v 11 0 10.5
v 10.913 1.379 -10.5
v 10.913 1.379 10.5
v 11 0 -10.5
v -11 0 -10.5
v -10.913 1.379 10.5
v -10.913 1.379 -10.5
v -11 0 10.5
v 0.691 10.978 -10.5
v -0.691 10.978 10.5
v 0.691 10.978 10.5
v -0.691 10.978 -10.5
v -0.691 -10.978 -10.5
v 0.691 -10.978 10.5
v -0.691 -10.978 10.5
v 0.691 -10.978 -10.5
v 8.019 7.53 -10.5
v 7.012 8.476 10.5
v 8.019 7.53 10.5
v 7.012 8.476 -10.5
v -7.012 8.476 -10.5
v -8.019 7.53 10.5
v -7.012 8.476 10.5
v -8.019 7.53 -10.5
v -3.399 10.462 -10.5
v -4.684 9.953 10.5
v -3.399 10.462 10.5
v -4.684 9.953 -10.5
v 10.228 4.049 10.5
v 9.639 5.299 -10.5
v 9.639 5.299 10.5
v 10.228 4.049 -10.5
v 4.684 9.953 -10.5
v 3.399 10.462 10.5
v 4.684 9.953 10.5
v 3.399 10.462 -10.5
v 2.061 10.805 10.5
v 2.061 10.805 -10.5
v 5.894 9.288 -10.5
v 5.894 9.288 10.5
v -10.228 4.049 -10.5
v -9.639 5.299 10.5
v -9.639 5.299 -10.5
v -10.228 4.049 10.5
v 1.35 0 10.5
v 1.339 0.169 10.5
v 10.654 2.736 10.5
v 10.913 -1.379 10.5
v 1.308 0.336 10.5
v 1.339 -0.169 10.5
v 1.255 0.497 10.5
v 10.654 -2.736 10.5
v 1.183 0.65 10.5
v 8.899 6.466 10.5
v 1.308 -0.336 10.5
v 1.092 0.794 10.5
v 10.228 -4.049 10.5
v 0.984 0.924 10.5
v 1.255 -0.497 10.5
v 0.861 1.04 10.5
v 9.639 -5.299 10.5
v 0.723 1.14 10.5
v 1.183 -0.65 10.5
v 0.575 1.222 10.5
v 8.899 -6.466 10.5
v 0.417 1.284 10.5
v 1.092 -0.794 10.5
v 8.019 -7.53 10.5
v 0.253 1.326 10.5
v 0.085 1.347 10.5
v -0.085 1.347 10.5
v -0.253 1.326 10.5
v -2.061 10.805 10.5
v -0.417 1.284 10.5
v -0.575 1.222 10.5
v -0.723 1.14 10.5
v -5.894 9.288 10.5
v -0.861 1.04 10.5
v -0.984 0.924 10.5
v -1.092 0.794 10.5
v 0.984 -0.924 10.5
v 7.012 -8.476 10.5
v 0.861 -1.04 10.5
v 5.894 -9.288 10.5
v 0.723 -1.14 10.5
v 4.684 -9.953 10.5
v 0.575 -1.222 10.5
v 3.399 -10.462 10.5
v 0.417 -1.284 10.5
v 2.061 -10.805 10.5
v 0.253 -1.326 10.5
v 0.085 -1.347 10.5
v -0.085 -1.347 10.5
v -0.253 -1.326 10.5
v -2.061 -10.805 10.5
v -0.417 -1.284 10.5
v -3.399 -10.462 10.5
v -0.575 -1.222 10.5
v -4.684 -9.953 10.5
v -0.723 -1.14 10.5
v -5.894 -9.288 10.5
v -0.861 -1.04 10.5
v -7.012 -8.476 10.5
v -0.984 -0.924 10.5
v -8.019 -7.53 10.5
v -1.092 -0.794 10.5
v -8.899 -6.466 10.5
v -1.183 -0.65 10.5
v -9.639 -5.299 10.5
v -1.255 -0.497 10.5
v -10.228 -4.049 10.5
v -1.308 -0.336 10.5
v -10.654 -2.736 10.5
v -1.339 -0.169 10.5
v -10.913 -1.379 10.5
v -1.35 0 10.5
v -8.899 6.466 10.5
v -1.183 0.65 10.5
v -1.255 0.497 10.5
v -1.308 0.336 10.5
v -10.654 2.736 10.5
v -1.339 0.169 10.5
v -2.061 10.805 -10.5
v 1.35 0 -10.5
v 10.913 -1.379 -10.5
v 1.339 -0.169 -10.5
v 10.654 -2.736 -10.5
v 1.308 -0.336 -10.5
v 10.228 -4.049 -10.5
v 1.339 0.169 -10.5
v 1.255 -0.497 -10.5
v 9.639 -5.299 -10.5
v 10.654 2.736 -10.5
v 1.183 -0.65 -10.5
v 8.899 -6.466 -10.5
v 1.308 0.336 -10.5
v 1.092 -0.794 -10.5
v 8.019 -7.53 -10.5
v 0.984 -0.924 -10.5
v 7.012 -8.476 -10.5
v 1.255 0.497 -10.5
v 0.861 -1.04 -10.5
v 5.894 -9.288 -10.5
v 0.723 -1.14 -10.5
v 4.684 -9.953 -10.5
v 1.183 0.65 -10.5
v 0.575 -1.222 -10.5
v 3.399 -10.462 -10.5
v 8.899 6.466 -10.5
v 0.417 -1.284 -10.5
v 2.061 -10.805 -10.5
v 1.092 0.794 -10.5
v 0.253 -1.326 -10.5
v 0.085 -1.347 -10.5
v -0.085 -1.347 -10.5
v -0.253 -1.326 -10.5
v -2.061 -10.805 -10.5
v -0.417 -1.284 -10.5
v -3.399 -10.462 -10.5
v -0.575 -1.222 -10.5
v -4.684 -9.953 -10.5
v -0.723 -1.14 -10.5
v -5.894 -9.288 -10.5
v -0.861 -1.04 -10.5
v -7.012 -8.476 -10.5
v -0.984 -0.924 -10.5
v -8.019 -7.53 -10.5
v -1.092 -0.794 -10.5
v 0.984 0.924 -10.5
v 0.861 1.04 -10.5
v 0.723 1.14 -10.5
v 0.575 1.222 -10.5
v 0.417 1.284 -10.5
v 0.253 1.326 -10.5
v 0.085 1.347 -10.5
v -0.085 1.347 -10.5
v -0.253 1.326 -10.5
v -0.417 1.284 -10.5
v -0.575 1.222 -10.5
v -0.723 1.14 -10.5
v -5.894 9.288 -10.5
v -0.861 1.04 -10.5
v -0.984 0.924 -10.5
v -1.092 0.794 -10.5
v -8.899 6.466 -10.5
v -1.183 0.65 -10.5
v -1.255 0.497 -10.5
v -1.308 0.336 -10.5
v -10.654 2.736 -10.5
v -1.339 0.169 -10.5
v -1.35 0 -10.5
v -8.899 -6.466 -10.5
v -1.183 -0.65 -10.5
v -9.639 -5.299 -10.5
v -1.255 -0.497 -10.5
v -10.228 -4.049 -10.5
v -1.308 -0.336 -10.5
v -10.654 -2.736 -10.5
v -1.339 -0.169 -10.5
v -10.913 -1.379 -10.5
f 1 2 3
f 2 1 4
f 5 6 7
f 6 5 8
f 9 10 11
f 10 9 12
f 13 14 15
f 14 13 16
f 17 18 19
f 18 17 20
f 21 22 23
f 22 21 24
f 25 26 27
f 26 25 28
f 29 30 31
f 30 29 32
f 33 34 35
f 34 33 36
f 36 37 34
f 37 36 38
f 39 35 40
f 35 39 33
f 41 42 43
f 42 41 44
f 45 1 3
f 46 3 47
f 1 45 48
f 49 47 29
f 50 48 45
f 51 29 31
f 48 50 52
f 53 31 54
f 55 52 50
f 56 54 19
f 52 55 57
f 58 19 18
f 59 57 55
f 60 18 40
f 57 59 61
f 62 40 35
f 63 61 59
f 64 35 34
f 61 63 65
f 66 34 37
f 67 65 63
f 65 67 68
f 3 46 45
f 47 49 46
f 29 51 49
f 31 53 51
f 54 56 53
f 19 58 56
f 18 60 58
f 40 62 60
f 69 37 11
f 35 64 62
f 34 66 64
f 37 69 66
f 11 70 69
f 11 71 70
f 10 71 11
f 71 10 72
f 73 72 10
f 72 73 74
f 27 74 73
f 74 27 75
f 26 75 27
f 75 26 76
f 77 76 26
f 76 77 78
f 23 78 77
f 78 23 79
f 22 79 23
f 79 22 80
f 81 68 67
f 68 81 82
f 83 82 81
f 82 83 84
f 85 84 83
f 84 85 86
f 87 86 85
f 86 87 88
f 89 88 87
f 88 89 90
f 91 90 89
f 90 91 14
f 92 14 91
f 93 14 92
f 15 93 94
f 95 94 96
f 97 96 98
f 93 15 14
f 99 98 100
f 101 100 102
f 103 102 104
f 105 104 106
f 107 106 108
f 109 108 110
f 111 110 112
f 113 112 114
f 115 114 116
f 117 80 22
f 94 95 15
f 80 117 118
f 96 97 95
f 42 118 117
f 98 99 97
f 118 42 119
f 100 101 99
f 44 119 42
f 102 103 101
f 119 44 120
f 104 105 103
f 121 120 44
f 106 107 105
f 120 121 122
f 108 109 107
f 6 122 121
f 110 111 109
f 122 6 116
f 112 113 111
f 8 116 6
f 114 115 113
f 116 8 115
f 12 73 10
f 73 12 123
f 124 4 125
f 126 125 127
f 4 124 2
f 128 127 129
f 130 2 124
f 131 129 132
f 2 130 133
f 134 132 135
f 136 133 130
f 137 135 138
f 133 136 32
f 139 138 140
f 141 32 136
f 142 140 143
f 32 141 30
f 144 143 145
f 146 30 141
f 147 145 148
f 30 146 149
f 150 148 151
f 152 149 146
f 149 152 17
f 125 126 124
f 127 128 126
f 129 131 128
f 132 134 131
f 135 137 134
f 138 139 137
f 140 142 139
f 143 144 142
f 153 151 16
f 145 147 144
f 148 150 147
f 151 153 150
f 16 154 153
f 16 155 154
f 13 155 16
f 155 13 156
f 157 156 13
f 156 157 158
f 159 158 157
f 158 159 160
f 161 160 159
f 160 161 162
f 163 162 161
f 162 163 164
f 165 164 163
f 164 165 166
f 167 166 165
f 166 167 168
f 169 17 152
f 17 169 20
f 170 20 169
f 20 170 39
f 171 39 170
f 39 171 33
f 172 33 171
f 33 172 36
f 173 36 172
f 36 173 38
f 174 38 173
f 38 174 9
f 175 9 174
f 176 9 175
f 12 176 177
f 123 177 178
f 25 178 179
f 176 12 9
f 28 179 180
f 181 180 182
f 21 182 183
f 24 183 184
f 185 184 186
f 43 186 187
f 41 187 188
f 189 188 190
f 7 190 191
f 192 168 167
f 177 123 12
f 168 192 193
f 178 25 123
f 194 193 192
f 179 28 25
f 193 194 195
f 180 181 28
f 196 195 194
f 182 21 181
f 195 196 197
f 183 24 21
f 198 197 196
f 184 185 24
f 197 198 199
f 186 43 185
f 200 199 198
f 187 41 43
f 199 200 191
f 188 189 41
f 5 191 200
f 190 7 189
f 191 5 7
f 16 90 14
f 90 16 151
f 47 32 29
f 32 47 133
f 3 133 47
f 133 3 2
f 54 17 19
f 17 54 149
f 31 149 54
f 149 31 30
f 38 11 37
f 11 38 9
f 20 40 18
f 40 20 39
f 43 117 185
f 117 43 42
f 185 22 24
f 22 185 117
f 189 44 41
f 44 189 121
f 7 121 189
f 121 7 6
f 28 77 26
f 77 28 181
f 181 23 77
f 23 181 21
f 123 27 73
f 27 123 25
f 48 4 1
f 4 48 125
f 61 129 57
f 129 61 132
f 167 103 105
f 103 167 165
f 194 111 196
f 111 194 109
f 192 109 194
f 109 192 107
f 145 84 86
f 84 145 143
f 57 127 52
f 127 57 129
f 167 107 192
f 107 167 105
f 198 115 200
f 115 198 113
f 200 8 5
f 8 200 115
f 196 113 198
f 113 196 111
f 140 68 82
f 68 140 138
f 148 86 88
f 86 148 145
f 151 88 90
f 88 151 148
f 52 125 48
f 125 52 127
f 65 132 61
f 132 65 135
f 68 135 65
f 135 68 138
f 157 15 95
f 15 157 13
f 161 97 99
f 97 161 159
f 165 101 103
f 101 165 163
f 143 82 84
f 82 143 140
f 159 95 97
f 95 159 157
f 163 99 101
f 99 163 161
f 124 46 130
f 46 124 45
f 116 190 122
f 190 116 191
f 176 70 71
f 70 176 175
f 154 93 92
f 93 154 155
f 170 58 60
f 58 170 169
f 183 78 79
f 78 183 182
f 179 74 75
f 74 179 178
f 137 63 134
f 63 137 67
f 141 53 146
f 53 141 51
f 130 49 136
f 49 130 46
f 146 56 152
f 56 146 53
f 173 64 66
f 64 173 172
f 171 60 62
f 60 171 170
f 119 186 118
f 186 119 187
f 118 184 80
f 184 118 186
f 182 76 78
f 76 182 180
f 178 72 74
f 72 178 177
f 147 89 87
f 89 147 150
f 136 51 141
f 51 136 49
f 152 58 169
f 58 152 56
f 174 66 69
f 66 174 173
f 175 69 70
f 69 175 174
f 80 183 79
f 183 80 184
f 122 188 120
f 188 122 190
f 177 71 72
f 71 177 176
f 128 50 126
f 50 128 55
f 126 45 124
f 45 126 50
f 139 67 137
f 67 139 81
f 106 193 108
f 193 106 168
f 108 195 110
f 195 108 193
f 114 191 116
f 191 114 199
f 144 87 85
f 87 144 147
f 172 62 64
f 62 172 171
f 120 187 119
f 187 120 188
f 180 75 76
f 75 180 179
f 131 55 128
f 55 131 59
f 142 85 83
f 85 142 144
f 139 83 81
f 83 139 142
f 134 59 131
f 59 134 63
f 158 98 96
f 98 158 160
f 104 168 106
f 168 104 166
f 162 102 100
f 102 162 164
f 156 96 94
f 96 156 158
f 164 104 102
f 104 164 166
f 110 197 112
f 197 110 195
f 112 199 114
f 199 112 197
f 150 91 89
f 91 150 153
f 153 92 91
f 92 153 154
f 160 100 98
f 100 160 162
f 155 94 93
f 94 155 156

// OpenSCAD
$fn = 50;


difference() {
	union() {
		translate(v = [0, 0, -10.5000000000]) {
			cylinder(h = 21, r = 11.0000000000);
		}
	}
	union() {
		translate(v = [0, 0, -100.0000000000]) {
			cylinder(h = 200, r = 1.3500000000);
		}
	}
}
